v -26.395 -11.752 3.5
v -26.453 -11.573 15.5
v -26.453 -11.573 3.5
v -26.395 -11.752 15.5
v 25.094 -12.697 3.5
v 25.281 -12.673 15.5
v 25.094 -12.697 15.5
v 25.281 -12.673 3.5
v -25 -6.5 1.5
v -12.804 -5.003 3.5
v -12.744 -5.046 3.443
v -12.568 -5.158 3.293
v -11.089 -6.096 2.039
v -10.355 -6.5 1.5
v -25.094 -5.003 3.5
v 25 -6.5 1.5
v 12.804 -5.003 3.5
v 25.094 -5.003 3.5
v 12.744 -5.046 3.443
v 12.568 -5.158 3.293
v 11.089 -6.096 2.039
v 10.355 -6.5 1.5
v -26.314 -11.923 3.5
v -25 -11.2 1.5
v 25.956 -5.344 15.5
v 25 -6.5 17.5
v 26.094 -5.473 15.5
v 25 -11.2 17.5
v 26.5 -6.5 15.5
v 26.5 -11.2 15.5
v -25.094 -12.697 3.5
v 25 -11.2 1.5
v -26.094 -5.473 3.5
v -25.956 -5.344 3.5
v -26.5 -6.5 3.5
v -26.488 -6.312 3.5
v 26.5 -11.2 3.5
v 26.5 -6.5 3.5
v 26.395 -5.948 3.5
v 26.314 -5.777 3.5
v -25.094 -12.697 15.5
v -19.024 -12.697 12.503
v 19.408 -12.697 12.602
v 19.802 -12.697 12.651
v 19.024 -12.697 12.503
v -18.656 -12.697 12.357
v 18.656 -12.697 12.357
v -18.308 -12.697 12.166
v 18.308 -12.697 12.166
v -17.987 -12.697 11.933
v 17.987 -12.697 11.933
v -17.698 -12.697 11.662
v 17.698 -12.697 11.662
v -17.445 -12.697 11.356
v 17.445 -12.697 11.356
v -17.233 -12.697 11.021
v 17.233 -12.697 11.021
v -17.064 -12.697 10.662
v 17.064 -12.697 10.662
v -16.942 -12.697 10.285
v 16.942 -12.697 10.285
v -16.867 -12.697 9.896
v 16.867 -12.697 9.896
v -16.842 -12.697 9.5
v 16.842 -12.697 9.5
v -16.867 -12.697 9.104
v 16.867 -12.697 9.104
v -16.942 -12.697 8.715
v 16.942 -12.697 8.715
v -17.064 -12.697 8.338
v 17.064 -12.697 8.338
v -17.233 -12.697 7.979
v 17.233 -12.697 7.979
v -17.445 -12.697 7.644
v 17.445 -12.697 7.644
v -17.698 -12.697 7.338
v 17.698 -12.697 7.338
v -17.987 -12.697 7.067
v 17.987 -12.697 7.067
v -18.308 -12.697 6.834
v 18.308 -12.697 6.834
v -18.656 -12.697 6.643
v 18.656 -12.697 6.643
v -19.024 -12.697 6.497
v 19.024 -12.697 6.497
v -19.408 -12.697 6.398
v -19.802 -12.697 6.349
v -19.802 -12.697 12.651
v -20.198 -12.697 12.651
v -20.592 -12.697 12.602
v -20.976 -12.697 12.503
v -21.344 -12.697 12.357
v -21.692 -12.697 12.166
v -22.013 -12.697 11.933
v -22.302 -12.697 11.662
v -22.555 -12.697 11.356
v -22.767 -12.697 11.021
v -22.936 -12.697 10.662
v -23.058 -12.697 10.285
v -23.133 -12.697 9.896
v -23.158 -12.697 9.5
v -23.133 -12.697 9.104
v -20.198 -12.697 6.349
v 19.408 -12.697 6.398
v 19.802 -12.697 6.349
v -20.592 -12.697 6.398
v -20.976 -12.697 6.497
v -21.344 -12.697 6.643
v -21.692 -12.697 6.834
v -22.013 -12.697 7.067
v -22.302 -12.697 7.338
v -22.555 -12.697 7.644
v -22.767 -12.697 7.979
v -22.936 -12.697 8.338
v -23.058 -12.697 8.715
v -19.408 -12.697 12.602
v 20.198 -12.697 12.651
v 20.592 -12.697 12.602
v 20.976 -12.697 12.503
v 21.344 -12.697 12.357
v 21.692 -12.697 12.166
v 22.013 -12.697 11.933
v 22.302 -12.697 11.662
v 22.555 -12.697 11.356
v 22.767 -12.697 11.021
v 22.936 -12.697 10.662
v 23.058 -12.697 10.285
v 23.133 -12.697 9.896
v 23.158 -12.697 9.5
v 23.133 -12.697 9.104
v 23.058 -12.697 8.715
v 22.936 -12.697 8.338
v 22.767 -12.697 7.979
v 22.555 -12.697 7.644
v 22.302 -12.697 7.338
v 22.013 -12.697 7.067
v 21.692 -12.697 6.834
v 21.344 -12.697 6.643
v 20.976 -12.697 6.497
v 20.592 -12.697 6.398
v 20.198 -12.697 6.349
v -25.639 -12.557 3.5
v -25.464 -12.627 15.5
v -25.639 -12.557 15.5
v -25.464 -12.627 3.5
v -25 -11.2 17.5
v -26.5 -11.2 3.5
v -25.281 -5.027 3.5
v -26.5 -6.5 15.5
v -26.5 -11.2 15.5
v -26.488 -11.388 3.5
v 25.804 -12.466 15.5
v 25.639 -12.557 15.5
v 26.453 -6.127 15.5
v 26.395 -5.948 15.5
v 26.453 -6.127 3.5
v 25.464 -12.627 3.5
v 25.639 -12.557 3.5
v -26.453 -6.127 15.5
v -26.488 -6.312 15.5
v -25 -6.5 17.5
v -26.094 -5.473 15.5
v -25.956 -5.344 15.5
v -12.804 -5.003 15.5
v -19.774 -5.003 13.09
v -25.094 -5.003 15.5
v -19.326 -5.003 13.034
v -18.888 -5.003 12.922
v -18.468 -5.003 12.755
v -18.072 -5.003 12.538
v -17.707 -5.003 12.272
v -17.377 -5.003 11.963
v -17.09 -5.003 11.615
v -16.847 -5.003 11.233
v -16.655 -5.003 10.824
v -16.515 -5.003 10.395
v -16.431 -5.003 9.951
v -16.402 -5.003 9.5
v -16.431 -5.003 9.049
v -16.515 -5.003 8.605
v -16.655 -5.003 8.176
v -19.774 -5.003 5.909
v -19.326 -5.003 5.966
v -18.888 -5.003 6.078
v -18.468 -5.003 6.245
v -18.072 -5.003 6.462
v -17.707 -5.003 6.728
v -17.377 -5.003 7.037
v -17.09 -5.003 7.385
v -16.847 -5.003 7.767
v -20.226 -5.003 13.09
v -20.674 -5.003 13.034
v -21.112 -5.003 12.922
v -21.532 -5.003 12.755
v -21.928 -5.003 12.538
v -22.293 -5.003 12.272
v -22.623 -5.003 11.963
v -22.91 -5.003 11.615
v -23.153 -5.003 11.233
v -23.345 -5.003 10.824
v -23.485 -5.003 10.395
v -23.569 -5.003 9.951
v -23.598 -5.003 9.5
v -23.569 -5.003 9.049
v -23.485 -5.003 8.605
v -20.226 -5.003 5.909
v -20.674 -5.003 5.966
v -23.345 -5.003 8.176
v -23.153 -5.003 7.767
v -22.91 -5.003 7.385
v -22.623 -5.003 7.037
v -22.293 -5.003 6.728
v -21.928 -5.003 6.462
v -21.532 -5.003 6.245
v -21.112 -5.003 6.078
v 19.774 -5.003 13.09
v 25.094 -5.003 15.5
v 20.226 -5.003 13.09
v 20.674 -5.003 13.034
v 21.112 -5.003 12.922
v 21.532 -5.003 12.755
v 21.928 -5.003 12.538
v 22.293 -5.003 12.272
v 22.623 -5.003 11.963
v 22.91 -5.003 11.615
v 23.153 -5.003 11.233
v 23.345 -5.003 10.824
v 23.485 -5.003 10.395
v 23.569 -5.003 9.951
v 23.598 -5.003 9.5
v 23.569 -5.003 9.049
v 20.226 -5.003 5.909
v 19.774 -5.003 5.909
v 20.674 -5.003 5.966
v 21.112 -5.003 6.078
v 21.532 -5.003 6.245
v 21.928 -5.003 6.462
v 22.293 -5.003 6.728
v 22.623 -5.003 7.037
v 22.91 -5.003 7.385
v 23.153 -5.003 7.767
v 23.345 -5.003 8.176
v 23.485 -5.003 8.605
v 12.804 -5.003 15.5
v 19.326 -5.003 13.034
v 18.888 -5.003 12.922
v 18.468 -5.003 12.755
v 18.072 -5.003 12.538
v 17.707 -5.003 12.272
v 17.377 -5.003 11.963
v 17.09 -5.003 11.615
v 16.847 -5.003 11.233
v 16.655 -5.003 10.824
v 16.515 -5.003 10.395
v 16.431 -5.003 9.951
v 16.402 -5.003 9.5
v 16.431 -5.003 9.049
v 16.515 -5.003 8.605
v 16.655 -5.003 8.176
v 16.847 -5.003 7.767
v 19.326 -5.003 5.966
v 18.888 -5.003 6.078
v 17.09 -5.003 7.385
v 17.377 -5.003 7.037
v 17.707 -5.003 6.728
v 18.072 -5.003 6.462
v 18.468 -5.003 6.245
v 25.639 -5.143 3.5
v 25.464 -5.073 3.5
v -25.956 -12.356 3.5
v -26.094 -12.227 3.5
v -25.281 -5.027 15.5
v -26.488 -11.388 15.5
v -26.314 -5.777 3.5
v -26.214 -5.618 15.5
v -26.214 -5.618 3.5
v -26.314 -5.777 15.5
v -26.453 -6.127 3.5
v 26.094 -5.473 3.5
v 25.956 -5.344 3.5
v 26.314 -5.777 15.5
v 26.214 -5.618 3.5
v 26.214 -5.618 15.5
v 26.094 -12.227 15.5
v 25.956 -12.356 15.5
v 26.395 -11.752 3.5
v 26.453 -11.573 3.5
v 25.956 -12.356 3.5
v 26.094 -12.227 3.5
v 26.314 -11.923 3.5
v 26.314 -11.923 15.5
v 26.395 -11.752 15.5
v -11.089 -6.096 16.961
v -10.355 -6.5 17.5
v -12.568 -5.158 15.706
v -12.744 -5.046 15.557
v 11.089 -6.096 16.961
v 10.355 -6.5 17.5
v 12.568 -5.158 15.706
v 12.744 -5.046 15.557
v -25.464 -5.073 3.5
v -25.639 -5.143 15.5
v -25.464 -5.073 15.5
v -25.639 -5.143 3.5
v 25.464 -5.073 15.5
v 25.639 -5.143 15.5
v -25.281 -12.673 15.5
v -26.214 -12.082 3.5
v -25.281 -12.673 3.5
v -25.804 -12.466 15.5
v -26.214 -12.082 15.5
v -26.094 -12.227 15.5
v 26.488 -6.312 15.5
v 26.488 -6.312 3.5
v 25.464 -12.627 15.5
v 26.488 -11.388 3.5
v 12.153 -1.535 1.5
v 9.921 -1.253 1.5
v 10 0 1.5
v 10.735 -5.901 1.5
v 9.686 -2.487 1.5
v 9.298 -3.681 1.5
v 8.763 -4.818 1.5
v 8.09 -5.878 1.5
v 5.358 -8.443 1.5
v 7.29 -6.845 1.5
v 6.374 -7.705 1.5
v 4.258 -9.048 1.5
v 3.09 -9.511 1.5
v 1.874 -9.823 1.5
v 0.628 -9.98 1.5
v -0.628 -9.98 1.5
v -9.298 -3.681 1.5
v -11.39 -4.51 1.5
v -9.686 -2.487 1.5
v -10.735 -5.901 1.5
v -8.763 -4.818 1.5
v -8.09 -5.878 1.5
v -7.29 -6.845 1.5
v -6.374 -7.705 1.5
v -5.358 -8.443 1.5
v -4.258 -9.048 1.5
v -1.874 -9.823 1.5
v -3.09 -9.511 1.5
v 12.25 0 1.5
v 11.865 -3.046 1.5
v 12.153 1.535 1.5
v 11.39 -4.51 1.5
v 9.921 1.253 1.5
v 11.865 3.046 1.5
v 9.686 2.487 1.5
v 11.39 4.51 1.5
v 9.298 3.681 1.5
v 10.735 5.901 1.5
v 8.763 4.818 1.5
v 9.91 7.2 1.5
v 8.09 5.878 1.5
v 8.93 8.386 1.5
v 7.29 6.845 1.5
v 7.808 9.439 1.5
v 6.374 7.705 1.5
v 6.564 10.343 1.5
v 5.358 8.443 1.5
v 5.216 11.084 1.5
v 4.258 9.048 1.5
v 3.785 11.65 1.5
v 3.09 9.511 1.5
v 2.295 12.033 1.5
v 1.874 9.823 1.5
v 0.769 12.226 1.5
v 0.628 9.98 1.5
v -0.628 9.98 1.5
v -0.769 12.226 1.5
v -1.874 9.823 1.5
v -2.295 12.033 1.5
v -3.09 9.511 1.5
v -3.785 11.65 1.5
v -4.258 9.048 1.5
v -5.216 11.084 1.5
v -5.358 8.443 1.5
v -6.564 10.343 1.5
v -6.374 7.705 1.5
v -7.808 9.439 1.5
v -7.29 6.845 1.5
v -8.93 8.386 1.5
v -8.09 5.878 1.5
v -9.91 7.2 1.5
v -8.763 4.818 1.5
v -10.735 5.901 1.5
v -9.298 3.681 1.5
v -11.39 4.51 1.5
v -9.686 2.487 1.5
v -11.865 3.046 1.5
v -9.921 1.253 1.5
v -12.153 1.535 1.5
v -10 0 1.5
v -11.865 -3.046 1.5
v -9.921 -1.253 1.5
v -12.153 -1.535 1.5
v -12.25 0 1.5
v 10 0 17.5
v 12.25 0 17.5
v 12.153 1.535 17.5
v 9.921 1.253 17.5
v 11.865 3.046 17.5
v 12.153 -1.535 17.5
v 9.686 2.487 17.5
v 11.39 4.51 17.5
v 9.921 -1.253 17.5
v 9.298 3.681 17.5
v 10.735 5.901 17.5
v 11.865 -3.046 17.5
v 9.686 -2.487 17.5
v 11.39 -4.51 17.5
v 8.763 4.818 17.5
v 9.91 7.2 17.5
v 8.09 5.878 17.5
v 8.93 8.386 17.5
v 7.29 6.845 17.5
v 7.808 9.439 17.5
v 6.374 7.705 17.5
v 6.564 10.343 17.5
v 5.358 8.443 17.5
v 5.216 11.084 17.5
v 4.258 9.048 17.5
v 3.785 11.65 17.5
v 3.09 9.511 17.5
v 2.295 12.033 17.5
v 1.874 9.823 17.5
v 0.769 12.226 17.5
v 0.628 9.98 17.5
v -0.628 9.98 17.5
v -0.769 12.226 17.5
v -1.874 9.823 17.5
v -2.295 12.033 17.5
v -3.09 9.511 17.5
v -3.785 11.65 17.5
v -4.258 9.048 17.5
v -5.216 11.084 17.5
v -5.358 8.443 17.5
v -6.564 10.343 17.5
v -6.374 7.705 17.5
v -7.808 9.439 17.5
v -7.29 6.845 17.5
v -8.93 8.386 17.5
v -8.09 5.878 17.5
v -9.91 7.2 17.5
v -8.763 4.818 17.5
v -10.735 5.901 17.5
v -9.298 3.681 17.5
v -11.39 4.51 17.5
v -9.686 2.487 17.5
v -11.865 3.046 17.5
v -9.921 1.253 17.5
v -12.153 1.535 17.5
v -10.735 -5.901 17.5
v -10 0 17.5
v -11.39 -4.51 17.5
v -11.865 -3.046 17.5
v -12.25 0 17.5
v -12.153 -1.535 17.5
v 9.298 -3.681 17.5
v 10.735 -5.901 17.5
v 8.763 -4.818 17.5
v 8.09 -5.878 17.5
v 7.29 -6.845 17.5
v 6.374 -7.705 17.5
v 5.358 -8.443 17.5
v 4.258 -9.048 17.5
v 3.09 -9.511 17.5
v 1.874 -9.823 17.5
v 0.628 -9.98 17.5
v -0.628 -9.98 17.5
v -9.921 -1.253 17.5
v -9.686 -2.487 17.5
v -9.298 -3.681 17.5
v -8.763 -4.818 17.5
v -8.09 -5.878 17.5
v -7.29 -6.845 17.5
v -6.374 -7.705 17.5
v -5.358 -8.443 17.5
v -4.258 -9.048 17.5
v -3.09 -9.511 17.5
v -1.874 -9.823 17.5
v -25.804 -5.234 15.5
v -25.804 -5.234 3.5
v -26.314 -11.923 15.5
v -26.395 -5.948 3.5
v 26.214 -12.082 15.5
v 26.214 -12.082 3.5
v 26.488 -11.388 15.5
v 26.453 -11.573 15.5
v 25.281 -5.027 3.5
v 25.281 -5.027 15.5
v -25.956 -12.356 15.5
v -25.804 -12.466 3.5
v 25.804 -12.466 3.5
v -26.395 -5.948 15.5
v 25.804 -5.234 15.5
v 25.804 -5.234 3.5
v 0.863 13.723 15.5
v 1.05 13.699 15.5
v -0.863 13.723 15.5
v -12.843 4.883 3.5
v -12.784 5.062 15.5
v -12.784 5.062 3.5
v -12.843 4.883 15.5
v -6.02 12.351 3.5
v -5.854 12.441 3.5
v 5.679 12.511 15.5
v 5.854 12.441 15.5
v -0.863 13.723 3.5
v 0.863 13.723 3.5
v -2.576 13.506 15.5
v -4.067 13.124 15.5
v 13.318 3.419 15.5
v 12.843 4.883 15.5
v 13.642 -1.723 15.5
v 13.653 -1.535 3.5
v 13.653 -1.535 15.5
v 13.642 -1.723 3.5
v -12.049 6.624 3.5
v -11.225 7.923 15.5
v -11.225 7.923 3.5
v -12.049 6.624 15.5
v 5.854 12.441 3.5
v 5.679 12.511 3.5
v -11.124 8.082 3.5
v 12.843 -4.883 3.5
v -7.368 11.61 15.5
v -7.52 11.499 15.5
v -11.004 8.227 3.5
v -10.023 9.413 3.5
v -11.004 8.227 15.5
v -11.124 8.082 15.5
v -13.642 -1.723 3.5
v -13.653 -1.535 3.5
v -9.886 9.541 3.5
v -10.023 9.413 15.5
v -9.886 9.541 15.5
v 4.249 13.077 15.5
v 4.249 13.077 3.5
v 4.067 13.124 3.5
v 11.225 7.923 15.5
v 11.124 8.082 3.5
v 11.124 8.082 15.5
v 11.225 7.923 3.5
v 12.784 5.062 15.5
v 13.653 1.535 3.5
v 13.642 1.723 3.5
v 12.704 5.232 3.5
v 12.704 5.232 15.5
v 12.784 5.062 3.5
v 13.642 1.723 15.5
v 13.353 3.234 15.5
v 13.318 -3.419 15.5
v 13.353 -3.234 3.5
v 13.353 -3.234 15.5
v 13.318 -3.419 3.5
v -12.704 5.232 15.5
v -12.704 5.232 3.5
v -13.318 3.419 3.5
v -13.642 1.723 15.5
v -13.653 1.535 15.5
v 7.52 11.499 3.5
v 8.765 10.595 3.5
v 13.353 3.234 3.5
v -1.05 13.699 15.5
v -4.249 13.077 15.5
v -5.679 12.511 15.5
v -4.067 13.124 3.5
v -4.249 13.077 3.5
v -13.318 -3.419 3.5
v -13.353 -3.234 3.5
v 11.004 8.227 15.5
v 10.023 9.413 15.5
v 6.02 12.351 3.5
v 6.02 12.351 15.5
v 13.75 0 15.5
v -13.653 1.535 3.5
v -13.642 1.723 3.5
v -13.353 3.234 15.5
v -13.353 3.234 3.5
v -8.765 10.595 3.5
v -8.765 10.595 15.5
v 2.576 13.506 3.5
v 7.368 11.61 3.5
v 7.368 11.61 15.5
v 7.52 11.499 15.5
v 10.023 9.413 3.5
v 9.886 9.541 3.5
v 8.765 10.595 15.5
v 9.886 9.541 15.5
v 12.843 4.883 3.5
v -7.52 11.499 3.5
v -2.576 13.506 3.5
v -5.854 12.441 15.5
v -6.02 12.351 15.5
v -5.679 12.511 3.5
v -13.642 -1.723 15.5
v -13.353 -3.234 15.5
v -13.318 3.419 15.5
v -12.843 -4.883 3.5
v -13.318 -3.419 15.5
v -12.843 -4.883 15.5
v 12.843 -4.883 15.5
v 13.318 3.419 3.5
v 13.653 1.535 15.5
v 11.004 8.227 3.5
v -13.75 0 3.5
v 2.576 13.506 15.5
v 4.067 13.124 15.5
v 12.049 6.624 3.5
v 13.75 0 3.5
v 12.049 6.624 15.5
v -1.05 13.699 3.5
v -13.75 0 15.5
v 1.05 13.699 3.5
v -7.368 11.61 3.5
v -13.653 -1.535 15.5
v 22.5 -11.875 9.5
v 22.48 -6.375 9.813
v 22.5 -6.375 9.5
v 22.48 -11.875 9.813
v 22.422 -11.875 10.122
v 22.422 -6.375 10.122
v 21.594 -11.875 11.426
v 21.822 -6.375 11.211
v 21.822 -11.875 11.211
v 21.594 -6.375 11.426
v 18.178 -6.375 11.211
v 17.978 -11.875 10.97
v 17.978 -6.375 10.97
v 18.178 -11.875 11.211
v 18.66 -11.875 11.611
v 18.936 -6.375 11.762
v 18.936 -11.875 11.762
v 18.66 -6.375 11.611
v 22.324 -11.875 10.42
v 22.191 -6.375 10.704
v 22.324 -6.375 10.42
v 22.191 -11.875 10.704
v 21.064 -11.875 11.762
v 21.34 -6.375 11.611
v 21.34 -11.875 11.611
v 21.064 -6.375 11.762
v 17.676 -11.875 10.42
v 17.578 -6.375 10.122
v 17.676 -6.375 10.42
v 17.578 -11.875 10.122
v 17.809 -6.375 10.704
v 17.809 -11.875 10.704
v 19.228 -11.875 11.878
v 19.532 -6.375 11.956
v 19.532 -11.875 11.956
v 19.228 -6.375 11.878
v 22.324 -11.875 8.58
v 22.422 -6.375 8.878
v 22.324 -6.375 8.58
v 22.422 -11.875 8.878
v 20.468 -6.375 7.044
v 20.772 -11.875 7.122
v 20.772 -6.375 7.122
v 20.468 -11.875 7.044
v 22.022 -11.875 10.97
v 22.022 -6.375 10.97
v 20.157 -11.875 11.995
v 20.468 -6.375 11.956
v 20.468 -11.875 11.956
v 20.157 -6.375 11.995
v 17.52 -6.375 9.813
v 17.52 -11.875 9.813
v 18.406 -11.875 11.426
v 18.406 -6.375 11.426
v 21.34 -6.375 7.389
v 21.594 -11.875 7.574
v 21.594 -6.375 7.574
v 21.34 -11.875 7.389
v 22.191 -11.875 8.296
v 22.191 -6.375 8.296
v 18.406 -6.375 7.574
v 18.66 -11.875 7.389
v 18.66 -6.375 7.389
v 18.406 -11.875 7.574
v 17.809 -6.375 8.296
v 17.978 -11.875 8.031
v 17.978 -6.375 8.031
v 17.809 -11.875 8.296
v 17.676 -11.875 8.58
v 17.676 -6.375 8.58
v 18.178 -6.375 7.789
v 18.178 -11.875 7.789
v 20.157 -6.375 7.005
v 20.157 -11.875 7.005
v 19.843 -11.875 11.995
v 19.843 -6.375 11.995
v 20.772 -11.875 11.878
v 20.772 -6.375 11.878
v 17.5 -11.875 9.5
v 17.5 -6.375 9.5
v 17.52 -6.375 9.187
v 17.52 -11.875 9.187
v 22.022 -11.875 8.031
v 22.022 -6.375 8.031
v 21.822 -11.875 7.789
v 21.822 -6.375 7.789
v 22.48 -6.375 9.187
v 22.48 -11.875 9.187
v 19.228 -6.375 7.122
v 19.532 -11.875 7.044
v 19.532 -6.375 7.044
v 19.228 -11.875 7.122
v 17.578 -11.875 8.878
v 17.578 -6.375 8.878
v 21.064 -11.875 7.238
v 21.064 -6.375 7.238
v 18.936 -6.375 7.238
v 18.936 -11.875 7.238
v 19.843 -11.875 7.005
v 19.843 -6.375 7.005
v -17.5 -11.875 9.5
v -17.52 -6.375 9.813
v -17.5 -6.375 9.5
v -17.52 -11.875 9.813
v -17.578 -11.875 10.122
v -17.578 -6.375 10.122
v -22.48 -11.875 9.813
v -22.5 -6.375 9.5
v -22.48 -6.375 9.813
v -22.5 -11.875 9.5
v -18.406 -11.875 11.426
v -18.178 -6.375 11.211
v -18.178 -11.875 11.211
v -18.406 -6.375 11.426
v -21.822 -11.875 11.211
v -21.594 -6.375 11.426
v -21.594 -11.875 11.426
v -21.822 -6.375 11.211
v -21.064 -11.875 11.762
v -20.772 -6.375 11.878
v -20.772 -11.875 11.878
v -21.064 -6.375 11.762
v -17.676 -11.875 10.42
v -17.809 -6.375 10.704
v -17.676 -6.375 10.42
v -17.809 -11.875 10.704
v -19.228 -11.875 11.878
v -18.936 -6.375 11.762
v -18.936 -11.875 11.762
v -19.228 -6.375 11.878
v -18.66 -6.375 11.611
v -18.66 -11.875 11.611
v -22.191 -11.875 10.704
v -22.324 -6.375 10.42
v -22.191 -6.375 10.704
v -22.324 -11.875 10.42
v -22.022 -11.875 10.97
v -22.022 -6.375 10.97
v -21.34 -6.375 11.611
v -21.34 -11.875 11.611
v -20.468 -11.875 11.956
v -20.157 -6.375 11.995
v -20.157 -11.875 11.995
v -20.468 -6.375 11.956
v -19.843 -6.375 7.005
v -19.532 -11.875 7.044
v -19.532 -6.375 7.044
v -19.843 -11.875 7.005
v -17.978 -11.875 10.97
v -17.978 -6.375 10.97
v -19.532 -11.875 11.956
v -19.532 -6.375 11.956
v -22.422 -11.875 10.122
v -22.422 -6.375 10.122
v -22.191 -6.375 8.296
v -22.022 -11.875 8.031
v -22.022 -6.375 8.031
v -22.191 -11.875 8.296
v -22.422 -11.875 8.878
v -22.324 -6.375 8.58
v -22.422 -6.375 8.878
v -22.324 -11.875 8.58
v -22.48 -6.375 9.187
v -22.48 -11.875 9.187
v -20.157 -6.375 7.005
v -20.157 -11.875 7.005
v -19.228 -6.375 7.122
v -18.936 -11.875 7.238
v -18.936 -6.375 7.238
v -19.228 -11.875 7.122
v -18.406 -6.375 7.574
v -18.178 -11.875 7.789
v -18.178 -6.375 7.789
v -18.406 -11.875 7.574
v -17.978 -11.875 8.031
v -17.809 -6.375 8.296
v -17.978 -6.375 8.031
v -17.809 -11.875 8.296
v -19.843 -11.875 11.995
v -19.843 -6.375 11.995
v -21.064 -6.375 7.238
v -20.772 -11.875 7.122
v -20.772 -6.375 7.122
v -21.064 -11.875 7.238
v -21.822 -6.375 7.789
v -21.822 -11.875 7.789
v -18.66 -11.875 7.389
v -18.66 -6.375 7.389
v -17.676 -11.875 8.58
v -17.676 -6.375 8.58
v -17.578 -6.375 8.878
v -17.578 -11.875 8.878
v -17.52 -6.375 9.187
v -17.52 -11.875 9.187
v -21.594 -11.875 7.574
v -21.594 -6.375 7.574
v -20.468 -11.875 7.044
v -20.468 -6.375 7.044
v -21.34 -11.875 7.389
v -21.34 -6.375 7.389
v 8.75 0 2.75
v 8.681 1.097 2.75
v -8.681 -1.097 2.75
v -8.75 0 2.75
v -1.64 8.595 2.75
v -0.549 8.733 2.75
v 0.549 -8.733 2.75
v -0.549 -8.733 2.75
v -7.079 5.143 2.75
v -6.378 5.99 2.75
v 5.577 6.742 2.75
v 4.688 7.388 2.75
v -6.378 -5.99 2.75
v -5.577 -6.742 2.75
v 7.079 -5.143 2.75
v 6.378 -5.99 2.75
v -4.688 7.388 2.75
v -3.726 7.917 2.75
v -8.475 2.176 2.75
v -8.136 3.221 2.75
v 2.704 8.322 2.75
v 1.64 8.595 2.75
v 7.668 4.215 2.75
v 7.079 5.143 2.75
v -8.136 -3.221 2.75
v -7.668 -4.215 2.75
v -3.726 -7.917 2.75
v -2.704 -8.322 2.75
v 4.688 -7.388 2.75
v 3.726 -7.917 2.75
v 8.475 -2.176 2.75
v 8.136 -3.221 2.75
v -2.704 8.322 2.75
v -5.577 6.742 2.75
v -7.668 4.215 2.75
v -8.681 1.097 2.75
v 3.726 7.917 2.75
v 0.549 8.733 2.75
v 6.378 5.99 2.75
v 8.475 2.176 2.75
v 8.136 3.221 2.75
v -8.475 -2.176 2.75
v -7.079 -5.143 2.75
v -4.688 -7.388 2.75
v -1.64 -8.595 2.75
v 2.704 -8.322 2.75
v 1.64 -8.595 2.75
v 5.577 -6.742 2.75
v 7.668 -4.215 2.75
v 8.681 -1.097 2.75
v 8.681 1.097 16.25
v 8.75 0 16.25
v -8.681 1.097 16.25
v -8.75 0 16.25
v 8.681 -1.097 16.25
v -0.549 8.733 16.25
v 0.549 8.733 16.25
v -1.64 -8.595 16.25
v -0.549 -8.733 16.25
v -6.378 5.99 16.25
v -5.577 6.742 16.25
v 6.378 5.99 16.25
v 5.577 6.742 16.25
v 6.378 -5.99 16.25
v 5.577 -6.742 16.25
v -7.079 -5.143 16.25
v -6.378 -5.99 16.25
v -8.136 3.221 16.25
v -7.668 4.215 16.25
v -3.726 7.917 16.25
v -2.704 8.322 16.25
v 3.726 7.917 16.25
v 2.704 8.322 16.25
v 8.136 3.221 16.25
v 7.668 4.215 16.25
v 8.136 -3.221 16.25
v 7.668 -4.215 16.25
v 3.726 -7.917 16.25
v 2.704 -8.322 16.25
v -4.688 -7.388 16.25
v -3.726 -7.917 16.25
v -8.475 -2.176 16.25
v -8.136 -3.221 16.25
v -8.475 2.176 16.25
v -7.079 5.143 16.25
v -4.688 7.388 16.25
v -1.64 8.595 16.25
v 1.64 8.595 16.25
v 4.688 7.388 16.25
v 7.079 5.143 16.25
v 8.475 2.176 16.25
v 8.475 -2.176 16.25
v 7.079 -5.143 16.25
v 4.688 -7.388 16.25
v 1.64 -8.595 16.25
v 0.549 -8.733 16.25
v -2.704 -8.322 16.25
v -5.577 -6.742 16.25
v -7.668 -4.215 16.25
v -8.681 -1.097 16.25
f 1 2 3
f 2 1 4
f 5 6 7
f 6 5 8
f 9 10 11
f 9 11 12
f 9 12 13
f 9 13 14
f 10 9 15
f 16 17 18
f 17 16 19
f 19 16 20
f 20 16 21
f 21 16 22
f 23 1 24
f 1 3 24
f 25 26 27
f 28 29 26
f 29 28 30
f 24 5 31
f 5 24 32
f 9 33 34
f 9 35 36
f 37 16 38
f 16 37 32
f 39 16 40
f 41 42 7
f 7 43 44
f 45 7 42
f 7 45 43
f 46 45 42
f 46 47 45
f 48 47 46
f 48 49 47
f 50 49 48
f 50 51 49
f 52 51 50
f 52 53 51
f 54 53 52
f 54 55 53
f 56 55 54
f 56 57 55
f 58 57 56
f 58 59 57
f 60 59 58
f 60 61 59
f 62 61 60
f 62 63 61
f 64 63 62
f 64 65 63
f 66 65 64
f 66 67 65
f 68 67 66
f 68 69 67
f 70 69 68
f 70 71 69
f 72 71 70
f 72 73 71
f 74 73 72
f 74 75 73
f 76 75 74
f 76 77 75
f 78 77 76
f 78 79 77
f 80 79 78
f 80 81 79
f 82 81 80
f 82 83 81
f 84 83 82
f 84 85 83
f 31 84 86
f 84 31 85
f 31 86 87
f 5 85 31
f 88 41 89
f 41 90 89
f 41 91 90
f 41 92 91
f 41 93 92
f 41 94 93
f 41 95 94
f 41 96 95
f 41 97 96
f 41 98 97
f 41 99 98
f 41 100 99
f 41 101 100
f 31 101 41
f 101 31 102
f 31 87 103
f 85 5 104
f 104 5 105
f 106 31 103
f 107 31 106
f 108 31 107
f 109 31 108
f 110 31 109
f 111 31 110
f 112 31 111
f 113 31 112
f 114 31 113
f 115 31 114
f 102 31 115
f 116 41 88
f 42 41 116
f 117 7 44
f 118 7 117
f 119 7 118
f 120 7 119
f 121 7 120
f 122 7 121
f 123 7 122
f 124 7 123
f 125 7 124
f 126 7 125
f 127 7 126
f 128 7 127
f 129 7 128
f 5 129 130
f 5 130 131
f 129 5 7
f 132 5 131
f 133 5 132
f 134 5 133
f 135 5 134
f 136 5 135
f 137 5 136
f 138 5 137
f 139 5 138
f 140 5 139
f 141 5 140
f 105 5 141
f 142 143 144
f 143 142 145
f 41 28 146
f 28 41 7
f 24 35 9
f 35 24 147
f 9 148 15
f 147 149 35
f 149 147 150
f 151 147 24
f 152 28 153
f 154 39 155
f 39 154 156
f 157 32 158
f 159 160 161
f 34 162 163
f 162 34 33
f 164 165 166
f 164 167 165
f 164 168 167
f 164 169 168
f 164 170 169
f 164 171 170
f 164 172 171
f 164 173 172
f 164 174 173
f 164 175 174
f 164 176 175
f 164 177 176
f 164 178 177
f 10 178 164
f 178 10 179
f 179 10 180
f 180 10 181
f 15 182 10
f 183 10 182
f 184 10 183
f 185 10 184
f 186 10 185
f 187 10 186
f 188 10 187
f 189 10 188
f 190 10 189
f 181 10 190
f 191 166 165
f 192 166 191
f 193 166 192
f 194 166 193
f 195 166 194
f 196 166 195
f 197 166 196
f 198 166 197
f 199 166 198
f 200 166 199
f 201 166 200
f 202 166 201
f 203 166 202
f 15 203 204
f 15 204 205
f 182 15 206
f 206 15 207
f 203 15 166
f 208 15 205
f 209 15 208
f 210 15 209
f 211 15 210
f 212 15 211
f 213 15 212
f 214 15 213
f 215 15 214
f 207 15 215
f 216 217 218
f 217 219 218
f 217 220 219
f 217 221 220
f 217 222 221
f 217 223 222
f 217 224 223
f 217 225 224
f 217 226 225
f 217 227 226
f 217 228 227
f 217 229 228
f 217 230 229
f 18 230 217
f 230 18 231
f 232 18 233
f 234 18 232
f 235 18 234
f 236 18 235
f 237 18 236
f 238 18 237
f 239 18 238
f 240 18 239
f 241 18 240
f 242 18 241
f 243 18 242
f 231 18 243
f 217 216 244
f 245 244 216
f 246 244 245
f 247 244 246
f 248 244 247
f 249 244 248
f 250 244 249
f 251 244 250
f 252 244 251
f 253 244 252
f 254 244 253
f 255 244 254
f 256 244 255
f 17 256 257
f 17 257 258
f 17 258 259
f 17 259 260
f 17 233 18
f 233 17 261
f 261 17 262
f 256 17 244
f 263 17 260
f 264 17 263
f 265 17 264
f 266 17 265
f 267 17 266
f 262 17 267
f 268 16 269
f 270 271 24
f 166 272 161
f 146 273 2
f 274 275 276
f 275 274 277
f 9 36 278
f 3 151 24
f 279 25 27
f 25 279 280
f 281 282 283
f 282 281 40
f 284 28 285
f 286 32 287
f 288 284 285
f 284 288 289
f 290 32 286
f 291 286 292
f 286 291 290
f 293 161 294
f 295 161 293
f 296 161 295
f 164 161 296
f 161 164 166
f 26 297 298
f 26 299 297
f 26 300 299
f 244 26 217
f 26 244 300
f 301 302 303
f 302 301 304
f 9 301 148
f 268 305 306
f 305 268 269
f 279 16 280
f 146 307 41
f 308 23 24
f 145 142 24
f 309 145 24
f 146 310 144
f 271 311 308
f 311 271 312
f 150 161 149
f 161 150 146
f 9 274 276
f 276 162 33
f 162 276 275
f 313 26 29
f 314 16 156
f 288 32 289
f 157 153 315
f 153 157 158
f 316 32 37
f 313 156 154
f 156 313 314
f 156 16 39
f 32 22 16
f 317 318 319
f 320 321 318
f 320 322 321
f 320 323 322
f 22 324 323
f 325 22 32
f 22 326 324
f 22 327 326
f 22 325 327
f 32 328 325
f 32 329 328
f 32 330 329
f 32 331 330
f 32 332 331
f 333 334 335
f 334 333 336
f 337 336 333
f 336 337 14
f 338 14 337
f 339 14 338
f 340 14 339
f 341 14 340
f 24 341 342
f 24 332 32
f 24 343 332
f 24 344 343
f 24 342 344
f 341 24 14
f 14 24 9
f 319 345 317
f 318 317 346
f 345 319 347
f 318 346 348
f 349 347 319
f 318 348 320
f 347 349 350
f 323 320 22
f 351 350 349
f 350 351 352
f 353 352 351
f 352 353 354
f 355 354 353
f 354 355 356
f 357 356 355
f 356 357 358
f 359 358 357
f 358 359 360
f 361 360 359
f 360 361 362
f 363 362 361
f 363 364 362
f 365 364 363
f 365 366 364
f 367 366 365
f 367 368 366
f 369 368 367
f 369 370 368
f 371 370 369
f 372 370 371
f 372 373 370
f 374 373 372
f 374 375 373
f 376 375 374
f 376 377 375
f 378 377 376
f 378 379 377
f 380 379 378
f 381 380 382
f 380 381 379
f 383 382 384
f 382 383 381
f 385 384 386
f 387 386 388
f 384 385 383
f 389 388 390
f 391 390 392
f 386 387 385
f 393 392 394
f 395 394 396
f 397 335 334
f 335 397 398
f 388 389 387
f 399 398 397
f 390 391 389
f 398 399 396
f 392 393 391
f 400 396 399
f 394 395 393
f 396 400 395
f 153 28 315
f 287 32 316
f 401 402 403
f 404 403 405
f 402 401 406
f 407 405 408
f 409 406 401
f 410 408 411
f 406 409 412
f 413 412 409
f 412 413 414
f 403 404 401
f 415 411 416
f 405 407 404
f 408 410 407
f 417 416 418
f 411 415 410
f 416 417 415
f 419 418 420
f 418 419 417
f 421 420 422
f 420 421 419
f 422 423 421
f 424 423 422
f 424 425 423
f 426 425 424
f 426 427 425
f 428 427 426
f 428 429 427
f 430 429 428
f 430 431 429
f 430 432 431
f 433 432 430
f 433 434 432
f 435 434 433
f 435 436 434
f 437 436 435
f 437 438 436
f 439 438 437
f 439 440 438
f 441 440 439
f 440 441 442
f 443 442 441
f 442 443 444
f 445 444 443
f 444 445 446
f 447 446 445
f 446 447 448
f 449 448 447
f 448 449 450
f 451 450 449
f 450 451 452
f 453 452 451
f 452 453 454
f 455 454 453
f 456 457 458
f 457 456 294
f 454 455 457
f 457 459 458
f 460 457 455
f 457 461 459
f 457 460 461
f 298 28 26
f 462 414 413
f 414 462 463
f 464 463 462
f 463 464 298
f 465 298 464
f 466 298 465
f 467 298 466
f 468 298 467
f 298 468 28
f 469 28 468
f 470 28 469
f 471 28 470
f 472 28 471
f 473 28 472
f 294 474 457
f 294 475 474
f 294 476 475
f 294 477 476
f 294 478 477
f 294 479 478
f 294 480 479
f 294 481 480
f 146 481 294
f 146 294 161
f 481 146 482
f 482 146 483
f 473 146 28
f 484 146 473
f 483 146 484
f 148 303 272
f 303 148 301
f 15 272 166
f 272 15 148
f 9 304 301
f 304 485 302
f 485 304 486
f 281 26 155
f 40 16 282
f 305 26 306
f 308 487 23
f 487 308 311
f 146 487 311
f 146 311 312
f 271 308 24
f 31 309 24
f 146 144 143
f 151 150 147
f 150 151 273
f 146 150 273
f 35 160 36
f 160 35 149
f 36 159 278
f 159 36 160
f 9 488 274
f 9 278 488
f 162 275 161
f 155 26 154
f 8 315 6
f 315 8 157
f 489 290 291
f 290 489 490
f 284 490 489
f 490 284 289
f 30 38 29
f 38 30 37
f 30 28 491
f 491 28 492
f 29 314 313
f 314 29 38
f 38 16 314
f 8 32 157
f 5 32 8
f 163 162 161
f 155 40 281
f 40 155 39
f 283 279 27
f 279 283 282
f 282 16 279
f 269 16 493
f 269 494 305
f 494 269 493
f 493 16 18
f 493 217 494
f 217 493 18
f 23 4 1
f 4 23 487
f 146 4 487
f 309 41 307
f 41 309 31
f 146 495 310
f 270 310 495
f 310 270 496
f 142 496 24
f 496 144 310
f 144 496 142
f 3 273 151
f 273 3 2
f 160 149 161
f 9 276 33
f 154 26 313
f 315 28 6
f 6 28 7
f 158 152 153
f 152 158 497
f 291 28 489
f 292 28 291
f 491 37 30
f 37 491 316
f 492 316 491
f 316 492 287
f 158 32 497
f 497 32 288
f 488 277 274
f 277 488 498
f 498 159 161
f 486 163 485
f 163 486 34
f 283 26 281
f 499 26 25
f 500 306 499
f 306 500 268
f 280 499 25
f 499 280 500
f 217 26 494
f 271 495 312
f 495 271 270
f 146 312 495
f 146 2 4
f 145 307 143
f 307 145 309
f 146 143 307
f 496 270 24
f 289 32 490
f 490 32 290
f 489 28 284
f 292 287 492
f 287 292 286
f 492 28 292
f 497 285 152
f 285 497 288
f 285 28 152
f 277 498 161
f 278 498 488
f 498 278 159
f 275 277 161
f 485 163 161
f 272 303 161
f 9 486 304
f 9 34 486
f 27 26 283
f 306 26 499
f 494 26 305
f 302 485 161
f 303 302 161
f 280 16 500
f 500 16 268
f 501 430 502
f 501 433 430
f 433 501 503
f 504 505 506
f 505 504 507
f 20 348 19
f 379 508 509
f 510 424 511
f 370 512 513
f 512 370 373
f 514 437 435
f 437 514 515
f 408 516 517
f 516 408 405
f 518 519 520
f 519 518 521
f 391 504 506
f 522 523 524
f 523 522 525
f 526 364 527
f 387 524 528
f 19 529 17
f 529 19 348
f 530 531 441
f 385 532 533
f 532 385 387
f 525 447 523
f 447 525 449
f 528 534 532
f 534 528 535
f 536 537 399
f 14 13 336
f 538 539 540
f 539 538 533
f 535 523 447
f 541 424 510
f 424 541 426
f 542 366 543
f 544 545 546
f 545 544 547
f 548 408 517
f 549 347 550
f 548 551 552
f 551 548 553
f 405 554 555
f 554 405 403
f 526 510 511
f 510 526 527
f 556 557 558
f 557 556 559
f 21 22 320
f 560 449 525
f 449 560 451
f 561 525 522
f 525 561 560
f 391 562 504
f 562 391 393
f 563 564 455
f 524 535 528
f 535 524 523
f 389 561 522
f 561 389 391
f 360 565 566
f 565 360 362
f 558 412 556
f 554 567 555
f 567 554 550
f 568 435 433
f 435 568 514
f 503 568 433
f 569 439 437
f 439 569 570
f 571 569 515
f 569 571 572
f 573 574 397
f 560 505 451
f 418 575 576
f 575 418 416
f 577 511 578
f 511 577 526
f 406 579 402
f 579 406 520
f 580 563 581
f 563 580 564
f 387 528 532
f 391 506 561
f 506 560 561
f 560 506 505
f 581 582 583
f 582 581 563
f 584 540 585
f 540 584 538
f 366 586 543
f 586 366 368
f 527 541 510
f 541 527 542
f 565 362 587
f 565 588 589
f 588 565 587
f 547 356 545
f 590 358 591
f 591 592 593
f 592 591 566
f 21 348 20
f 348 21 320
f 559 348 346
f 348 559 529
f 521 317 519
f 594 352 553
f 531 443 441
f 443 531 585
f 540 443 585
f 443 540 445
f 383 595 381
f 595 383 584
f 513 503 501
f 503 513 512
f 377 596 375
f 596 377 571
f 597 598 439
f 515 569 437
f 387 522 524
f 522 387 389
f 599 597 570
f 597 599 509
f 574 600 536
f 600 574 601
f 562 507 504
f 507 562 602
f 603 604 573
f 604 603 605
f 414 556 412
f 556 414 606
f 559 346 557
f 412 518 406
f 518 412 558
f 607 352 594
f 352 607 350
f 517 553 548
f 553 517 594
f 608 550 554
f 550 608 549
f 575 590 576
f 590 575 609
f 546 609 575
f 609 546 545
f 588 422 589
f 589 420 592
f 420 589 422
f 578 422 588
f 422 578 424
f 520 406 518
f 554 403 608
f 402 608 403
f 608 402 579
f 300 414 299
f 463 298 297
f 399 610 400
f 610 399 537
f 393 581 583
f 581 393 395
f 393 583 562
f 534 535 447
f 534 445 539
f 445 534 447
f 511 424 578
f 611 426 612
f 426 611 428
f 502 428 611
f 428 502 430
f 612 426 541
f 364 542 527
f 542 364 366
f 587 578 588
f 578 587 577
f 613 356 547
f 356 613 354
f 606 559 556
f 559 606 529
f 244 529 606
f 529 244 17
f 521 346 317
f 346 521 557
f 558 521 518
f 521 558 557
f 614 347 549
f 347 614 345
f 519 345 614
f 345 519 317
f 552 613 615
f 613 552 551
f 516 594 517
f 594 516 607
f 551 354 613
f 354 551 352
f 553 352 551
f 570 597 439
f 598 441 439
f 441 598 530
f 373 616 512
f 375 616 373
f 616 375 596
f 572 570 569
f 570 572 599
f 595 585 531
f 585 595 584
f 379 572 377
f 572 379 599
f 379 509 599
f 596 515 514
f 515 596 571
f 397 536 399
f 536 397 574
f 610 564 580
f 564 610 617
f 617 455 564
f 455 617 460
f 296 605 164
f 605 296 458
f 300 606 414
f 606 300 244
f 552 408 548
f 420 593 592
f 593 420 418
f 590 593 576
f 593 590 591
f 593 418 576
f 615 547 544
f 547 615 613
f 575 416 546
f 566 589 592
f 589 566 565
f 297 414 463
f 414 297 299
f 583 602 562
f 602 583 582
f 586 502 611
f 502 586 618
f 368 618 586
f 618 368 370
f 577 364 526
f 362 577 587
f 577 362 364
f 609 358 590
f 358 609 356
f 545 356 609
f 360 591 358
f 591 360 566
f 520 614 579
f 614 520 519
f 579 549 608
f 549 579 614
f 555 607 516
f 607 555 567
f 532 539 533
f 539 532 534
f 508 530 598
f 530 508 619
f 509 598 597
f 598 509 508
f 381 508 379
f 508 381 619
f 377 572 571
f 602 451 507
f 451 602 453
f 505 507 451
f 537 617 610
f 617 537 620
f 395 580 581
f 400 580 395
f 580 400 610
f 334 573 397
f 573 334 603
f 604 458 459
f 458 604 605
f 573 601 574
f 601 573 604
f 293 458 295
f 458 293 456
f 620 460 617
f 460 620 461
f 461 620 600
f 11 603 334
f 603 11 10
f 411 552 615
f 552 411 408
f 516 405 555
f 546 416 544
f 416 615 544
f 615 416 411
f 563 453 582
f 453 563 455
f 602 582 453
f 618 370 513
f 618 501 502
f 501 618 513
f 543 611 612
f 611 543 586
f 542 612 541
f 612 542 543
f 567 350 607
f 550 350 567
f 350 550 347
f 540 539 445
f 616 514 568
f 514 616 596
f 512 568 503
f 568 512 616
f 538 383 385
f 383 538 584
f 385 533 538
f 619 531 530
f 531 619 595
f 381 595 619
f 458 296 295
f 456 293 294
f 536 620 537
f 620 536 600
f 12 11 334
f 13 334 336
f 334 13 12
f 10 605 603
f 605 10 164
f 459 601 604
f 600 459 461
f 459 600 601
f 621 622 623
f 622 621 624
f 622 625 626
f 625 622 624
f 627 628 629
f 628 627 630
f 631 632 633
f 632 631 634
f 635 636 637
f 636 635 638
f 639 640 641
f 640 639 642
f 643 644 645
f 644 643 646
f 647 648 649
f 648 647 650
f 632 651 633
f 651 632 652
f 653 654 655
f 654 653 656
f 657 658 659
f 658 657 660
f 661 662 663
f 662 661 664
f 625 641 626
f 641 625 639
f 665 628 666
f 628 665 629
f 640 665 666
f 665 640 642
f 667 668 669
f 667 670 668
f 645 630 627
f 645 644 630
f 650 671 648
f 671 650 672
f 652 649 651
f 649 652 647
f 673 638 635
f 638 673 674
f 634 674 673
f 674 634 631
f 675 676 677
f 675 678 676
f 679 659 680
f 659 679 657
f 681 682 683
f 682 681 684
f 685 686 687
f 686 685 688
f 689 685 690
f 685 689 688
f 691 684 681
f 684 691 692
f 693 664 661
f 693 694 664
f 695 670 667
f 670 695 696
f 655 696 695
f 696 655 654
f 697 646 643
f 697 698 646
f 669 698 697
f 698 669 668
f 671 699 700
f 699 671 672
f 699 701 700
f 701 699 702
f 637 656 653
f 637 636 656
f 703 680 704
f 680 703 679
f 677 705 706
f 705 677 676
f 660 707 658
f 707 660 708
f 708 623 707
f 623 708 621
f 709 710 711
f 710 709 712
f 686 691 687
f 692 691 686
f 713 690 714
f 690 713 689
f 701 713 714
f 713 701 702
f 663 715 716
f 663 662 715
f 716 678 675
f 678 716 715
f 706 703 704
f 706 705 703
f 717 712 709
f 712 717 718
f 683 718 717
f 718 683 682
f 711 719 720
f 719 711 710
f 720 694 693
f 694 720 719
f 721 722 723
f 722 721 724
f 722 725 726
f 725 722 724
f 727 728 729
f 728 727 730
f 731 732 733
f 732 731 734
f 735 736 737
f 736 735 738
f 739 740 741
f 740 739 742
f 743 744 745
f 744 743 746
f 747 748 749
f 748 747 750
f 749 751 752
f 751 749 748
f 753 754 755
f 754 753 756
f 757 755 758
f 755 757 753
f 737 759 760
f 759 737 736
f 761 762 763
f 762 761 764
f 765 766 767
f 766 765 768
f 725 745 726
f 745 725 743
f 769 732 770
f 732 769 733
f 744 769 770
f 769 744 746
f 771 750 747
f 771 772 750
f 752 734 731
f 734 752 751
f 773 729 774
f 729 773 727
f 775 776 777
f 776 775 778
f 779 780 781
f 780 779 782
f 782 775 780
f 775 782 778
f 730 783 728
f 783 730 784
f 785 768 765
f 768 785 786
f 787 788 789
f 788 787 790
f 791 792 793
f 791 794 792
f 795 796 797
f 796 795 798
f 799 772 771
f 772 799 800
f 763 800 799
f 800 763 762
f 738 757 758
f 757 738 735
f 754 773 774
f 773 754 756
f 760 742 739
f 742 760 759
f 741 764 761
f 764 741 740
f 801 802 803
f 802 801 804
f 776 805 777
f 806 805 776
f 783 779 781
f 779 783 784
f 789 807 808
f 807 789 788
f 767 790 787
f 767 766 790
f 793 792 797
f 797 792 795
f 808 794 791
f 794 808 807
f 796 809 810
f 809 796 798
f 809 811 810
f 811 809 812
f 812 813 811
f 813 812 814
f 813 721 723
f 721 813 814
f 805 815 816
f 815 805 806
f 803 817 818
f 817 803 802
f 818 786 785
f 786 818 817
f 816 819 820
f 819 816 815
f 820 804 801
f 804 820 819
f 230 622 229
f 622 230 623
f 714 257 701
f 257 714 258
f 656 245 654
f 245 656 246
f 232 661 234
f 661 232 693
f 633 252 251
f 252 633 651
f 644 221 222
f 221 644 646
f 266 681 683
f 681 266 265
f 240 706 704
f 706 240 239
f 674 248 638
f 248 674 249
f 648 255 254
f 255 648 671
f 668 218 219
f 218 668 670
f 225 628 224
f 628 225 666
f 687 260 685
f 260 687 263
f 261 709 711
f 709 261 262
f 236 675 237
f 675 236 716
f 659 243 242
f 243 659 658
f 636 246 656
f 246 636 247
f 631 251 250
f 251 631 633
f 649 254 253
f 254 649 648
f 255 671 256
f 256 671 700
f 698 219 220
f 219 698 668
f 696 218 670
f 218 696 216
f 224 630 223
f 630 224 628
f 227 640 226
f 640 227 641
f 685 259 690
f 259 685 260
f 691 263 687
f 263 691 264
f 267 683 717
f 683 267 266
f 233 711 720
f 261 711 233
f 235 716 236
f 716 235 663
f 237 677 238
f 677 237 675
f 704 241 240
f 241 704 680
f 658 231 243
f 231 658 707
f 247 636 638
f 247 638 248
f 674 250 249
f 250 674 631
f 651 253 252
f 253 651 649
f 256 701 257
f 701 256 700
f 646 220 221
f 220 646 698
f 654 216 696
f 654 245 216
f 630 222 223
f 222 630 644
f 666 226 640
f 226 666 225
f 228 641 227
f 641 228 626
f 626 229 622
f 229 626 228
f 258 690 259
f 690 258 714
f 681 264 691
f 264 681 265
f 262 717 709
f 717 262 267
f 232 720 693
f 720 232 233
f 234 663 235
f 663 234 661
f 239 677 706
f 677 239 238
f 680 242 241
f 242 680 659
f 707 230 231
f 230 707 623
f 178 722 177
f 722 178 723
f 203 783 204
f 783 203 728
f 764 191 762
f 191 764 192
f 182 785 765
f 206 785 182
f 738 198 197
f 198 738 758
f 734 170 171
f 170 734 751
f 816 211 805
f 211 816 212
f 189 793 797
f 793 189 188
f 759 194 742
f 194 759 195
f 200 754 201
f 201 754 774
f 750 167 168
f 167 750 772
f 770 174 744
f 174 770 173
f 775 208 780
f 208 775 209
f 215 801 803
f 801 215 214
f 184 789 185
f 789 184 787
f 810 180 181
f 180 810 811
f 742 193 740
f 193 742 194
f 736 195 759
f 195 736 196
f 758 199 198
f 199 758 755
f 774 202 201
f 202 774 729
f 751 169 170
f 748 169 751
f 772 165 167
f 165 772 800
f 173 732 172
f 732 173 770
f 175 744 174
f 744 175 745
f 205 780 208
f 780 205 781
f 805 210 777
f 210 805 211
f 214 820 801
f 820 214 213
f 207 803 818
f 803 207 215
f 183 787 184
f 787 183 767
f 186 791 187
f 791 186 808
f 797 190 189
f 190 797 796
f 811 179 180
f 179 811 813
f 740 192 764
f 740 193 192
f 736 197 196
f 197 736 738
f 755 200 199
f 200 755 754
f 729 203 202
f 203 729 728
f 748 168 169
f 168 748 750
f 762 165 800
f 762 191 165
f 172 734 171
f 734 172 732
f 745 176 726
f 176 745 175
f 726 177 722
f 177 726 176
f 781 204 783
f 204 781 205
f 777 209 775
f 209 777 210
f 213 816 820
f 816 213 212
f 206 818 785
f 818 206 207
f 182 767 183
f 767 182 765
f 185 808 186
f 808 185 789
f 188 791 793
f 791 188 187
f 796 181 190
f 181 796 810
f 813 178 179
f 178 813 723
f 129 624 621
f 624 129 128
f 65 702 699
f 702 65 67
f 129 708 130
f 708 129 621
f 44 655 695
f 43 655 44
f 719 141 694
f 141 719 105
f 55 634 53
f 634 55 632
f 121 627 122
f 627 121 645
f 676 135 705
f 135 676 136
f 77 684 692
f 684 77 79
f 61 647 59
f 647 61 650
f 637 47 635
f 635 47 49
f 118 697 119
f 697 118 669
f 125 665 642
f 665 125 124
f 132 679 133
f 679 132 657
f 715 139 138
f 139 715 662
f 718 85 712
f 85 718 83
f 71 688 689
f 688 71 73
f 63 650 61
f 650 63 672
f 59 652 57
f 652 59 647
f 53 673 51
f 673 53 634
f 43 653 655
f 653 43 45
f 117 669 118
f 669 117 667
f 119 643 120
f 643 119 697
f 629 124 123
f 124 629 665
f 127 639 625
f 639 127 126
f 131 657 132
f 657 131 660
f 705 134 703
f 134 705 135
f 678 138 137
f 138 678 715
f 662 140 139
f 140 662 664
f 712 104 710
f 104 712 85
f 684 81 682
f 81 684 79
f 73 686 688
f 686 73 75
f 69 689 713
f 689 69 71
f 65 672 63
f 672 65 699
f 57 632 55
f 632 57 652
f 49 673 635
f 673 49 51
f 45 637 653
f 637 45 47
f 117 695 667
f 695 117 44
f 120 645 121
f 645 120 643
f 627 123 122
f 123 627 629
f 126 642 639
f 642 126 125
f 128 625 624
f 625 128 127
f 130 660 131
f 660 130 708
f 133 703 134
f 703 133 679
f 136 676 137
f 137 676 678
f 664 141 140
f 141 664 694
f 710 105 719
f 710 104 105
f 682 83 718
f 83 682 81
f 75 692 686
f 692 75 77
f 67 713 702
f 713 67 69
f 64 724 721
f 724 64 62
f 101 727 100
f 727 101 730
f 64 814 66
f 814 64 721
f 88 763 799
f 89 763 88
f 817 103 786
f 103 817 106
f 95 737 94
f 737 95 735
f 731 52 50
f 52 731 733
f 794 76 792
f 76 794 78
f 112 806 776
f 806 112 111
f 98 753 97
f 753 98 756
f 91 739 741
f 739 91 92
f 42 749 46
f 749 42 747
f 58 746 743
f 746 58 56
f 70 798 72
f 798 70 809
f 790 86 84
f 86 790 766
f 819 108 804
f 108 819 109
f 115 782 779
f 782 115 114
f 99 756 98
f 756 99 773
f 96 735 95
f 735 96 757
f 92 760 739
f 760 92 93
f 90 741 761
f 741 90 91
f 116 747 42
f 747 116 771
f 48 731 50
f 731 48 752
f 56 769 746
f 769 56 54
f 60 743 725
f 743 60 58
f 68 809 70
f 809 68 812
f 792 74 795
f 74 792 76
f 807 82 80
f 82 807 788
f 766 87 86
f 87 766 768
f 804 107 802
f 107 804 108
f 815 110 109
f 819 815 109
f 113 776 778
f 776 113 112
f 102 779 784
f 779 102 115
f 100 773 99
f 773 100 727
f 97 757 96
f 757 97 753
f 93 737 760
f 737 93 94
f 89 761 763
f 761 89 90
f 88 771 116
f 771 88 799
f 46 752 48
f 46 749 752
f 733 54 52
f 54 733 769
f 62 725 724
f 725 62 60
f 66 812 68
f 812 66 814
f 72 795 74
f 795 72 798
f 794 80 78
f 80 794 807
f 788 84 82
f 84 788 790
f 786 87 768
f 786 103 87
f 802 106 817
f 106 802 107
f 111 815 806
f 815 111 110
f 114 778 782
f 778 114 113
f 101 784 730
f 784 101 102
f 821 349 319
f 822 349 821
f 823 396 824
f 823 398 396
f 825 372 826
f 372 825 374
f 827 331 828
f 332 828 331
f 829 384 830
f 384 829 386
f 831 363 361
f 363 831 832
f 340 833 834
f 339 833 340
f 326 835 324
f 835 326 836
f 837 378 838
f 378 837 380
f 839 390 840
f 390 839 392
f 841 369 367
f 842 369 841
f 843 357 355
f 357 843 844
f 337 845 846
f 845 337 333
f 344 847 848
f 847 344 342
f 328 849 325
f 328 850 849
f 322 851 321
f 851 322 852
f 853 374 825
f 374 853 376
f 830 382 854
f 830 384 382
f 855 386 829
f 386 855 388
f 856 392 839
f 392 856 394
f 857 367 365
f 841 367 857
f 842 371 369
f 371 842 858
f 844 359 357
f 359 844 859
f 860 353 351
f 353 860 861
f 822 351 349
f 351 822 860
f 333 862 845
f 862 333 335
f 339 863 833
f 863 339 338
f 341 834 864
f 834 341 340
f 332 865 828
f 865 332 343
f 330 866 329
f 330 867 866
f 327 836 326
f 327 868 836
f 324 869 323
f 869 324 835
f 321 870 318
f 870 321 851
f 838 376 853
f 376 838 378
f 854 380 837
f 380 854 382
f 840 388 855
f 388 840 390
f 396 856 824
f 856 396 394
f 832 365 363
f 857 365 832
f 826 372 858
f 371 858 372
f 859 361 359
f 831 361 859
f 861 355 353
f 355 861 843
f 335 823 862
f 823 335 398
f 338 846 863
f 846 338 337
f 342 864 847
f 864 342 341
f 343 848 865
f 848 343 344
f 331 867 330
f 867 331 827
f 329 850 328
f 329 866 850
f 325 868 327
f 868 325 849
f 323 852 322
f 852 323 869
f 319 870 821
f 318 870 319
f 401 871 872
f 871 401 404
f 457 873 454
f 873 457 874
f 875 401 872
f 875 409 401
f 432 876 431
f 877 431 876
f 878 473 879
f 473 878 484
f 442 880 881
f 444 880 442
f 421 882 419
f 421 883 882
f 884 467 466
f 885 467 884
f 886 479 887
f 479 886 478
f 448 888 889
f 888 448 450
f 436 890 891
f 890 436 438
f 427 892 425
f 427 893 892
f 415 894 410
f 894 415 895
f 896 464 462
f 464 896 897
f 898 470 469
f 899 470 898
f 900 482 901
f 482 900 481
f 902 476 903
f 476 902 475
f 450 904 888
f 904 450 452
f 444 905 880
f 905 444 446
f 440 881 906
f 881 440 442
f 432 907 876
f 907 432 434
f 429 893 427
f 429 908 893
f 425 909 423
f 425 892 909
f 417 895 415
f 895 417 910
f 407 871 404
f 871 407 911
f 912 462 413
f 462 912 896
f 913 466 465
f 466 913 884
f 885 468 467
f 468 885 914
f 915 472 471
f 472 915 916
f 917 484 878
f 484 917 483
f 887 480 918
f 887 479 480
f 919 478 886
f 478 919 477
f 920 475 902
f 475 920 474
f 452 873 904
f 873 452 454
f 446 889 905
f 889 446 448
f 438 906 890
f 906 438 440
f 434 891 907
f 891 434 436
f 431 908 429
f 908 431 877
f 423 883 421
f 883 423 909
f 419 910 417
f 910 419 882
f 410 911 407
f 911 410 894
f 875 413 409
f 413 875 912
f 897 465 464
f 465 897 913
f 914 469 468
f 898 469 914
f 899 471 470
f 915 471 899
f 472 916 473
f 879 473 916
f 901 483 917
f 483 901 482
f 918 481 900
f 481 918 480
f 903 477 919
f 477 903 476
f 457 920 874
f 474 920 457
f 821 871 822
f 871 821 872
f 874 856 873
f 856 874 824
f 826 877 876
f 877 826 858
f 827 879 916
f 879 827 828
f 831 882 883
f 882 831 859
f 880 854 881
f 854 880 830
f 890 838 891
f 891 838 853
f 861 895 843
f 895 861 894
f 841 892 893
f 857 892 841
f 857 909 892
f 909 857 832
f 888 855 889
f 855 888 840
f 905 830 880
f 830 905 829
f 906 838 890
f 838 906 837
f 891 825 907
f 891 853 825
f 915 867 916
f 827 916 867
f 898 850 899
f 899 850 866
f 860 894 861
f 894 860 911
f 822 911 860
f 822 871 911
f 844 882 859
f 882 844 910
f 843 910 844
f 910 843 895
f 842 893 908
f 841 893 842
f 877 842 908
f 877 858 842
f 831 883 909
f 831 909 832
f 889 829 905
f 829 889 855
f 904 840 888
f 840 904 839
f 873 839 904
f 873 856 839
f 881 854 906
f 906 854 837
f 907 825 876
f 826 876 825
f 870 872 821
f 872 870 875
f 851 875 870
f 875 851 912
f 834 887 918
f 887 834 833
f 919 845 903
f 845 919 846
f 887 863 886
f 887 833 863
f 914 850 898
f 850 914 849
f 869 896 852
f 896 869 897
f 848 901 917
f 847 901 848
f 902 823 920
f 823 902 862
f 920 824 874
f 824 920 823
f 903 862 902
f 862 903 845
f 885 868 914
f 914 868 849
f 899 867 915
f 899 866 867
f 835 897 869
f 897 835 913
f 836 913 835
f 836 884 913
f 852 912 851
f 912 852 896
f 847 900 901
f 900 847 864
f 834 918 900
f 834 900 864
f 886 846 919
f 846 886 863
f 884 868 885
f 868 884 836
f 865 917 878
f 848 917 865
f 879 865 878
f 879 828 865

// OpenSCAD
// An mount (uses 2 drywall screws) for a 17.5mm touch-sensitive strip-lighting control 
// button that I bought on aliexpress.

// last known link: "https://www.aliexpress.com/item/4000106862374.html"
// search term to find the same object: "LED dimmer 12v touch button"

difference(){
    minkowski(){
        difference(){ // remove rounded part on flat face
            union(){
                translate([0, 0, 1.5]) cylinder(r1=(17.5 / 2)+3.5, h=12, r2=(17.5 / 2)+3.5, $fn=50);
                translate([0, -9, 7.5])cube([50, 5, 12], center=true);
            }
            translate([0, -15.2, 7.5])cube([52, 8, 16], center=true);
        }
        union(){ // buck for minkowski rounding
            // A small double ended cone works well to round off sharp areas 
            // along upper and lower faces while also rounding vertical edges.
            translate([0, 0, 2]) cylinder(r1=1.5, r2=0, h=2, $fn=50);
            translate([0, 0, 0]) cylinder(r1=0, r2=1.5, h=2, $fn=50);
        }
    }
    //remove profile of switch
    cylinder(r1=(17.5 / 2), h=18, r2=(17.5 / 2), $fn=50);
    union(){
        //screw holes (takes drywall screws)
        translate([20, 0, 9.5]) rotate([90, 0, 0]) cylinder(r1=2.5, r2=2.5, h=25, $fn=50);
        translate([-20, 0, 9.5]) rotate([90, 0, 0]) cylinder(r1=2.5, r2=2.5, h=25, $fn=50);
        //chamfers on screw holes' top face
        translate([20, -4.5, 9.5]) rotate([90, 0, 0]) cylinder(r1=4, r2=0, h=5, $fn=50);
        translate([-20, -4.5, 9.5]) rotate([90, 0, 0]) cylinder(r1=4, r2=0, h=5, $fn=50);
        //smaller chamfers on screw holes' bottom face
        translate([20, -8.75, 9.5]) rotate([90, 0, 0]) cylinder(r1=0, r2=4, h=5, $fn=50);
        translate([-20, -8.75, 9.5]) rotate([90, 0, 0]) cylinder(r1=0, r2=4, h=5, $fn=50);
        //chamfers on switch cutout:
        translate([0, 0, -.5]) cylinder(r1=12, r2=0, h=12, $fn=50);
        translate([0, 0, 7.5]) cylinder(r1=0, r2=12, h=12, $fn=50);
    }
}
